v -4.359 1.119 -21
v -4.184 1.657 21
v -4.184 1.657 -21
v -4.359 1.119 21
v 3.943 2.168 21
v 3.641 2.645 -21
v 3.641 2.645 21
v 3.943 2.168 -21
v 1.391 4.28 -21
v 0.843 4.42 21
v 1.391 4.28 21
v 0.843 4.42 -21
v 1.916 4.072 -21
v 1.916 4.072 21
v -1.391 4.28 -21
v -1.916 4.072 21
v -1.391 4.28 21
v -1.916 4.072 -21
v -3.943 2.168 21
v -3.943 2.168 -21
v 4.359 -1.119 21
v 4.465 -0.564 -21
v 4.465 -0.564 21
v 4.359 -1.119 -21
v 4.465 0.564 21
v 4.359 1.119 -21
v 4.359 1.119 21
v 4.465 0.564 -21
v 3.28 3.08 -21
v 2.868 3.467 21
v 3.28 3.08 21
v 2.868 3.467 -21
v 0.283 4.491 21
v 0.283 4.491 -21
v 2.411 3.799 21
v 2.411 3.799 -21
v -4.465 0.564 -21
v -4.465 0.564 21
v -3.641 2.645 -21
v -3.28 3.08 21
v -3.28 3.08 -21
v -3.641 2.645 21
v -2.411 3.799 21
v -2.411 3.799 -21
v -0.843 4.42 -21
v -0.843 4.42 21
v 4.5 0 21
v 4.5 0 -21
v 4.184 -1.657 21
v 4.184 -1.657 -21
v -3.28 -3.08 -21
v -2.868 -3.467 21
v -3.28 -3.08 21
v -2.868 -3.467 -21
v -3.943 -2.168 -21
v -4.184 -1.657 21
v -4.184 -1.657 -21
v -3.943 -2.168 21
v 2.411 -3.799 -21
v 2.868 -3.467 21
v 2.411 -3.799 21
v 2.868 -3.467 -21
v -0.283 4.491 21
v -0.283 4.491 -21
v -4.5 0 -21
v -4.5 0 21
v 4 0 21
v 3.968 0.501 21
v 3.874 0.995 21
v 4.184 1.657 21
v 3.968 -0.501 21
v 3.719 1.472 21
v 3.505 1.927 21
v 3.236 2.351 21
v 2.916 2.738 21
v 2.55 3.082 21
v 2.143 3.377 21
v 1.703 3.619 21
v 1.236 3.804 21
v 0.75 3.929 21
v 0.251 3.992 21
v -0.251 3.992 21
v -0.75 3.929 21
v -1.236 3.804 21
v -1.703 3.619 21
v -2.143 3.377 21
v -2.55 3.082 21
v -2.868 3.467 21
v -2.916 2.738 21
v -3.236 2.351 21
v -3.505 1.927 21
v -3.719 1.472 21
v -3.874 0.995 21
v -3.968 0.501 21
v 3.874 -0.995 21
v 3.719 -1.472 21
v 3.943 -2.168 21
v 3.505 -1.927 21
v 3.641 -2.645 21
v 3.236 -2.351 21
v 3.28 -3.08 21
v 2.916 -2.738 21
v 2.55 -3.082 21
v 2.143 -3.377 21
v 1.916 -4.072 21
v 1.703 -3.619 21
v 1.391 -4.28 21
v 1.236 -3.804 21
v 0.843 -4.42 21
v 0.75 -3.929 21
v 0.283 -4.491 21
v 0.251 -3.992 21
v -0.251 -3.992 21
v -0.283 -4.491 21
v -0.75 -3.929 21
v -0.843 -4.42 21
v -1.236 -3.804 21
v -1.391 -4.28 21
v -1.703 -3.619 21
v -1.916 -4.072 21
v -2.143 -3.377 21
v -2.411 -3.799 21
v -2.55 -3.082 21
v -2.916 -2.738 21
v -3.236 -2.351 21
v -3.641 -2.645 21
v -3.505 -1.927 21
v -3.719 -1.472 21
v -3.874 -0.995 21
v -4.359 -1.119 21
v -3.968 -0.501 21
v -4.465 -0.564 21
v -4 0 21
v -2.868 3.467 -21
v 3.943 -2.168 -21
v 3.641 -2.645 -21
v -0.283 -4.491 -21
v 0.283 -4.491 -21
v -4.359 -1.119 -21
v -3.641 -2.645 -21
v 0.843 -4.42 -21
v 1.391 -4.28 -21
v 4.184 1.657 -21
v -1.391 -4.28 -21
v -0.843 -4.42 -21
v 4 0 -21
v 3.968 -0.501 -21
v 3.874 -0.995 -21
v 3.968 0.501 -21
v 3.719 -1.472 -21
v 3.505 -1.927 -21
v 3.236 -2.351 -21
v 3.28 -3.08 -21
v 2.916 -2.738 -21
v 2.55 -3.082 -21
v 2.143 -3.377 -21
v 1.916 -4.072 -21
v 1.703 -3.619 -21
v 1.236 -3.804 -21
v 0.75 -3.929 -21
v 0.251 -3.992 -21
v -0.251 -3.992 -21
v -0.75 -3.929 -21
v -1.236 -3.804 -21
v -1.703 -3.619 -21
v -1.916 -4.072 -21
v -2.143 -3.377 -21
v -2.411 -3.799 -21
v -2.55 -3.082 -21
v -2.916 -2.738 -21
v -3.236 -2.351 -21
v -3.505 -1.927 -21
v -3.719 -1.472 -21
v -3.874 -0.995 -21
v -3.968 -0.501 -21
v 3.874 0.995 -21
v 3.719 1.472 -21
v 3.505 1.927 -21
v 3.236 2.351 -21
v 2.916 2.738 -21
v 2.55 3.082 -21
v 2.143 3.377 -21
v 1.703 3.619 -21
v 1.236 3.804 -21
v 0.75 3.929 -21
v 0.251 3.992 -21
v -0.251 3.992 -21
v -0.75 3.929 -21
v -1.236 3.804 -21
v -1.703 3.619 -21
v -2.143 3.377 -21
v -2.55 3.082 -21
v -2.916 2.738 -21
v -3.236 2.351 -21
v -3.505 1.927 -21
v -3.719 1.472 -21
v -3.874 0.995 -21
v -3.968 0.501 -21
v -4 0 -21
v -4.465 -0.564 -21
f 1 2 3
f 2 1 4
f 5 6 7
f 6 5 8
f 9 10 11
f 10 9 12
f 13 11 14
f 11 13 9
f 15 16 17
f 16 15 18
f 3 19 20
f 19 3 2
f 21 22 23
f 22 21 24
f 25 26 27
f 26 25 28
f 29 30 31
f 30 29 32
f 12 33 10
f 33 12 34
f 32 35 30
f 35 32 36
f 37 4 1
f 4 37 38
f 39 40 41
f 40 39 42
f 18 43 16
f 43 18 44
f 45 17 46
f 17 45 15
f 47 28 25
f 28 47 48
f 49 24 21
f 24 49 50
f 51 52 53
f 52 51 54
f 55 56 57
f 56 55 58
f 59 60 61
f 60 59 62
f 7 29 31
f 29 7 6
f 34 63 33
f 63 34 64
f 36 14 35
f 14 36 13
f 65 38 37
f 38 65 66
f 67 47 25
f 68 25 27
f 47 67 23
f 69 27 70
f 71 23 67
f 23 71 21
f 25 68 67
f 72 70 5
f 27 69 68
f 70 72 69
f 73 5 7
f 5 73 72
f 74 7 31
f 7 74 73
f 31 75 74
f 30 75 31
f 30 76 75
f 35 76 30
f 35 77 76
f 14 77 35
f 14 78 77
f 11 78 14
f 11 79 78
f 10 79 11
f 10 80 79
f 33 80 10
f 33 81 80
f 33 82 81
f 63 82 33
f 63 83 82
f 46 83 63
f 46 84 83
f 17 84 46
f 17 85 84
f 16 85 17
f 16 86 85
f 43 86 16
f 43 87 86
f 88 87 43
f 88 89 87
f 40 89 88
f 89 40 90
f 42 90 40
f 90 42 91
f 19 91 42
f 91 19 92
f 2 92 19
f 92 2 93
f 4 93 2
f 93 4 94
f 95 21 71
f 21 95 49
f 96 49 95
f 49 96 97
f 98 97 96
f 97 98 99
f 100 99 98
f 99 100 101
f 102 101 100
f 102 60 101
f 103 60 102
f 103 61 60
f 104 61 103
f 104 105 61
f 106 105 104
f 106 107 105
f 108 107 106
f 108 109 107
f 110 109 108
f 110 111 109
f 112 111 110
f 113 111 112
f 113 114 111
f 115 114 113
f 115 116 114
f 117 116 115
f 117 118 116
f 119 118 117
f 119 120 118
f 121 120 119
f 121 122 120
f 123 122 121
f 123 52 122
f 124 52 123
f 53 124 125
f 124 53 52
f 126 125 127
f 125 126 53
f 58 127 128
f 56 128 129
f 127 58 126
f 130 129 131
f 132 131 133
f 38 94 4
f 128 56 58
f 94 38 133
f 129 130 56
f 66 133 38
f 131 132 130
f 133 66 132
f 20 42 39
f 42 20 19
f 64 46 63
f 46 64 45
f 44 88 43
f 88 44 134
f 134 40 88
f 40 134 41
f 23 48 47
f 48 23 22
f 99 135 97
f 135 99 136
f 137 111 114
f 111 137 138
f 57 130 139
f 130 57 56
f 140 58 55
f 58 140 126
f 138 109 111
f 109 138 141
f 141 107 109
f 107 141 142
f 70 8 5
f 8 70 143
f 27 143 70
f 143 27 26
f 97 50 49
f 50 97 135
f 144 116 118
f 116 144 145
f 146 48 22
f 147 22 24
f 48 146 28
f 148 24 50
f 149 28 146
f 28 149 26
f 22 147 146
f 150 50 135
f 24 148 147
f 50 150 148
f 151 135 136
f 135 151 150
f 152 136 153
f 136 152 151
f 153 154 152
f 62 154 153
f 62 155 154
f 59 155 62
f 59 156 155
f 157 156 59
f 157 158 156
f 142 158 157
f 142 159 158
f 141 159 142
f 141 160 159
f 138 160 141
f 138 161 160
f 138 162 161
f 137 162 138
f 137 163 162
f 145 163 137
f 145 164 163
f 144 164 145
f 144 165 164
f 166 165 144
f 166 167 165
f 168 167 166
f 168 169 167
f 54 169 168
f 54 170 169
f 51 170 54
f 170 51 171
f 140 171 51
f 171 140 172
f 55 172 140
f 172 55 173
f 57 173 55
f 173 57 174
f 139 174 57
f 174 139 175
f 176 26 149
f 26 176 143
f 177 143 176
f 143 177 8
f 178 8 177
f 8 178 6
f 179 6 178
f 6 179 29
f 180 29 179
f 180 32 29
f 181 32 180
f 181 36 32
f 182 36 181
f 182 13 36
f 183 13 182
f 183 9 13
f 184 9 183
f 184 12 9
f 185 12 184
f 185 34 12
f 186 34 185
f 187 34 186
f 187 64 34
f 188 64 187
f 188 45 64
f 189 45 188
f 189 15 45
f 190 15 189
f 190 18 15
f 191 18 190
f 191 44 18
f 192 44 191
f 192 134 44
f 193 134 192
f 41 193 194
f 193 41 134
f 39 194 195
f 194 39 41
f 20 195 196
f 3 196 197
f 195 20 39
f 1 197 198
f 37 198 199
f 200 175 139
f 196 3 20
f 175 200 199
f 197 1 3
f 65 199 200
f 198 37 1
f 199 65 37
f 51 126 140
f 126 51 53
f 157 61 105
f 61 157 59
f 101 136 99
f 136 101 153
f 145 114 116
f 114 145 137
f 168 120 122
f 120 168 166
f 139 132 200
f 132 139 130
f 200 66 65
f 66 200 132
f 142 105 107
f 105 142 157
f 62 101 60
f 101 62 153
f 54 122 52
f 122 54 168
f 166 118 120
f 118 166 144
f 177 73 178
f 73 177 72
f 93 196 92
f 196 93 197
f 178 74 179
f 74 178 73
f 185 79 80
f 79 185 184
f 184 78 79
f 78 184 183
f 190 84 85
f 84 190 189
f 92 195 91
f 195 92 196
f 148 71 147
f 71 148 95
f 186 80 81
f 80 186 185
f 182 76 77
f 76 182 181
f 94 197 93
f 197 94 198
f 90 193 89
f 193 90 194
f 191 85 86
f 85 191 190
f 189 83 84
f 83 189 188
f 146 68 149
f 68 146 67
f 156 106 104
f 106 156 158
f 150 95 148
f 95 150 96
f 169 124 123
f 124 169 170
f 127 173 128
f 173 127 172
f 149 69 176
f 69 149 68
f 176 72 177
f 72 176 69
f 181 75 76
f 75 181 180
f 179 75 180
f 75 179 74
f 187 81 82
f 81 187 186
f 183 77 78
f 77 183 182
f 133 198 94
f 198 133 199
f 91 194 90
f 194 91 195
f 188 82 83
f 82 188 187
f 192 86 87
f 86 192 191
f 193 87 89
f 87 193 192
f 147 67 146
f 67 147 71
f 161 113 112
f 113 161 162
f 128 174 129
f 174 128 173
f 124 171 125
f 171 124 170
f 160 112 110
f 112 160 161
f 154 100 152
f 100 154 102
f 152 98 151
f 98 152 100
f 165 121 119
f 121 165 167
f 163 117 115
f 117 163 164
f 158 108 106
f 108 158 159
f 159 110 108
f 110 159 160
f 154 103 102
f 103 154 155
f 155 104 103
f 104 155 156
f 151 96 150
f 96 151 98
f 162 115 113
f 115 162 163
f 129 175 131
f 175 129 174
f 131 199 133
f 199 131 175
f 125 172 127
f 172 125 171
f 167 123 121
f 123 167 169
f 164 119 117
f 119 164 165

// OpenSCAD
$fn = 50;


difference() {
	union() {
		translate(v = [0, 0, -21.0000000000]) {
			cylinder(h = 42, r = 4.5000000000);
		}
	}
	union() {
		translate(v = [0, 0, -100.0000000000]) {
			cylinder(h = 200, r = 4);
		}
	}
}
